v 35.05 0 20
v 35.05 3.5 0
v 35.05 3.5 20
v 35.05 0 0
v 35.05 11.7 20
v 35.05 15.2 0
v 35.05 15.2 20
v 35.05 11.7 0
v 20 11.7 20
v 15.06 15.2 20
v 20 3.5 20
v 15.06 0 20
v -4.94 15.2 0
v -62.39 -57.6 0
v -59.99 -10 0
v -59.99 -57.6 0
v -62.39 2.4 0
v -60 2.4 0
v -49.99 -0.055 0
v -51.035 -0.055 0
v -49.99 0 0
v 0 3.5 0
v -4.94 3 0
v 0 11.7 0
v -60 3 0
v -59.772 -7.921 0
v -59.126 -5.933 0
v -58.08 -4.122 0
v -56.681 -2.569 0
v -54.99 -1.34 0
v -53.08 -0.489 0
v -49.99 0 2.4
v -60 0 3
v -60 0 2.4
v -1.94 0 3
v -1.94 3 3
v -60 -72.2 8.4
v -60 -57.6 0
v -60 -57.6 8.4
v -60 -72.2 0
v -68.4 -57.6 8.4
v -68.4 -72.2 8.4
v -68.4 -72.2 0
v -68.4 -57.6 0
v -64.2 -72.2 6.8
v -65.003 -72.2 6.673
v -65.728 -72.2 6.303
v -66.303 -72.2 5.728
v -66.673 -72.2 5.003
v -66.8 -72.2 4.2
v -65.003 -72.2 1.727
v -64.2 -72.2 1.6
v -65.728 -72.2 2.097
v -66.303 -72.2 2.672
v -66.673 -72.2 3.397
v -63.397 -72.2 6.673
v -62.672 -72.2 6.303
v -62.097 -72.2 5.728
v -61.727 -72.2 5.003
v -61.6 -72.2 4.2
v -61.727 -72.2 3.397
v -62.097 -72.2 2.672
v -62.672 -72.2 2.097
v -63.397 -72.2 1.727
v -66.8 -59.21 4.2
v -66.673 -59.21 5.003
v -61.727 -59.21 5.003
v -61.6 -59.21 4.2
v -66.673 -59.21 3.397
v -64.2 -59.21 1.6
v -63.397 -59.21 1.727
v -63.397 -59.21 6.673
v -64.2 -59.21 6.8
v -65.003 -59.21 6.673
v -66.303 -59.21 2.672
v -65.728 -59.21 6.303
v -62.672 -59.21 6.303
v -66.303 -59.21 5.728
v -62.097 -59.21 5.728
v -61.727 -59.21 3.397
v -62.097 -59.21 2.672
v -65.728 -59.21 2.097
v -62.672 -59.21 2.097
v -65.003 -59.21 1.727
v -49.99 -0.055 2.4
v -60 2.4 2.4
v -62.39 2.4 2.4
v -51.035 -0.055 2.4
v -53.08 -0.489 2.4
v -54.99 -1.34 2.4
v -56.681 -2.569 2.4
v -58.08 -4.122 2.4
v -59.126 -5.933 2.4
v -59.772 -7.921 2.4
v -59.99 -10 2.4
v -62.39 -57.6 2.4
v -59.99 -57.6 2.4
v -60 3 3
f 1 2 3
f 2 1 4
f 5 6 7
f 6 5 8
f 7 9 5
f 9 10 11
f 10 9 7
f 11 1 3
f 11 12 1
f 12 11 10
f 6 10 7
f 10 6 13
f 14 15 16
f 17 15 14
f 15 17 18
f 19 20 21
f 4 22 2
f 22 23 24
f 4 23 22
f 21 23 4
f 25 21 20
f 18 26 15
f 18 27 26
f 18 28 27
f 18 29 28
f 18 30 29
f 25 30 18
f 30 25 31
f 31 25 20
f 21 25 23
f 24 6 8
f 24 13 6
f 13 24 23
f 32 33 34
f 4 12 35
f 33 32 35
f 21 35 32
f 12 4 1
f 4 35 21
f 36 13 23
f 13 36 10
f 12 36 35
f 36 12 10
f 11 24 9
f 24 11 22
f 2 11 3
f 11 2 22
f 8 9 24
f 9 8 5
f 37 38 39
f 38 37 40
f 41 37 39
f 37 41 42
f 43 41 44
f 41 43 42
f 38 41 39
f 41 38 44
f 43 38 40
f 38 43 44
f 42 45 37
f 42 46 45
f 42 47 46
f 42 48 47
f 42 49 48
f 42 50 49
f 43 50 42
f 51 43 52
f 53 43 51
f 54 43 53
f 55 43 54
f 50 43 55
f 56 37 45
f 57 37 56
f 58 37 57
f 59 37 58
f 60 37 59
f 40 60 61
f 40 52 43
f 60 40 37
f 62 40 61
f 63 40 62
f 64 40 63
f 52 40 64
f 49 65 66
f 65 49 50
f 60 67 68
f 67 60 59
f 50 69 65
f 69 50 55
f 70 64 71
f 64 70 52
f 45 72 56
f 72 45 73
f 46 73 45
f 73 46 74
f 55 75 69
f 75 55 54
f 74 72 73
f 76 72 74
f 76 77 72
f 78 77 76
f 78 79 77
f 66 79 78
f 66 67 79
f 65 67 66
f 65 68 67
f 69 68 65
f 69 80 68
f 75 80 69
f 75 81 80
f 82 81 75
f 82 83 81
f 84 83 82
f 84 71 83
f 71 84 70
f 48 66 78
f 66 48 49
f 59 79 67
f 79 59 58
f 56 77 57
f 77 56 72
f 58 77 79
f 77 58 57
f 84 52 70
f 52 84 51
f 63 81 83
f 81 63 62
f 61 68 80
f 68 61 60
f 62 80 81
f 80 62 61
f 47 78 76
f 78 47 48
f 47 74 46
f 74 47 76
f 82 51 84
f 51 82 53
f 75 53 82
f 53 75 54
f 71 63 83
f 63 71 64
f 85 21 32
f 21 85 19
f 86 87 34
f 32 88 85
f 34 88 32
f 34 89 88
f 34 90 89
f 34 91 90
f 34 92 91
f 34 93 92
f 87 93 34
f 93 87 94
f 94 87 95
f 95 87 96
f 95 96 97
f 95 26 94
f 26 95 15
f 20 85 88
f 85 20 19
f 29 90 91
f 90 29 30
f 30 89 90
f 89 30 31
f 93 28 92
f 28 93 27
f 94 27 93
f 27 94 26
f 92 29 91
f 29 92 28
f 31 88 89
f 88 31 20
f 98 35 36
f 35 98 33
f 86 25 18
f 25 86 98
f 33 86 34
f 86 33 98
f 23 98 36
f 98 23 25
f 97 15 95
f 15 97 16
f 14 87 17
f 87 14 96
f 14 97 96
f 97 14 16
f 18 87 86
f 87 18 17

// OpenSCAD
// -*- mode: SCAD ; c-file-style: "ellemtel" ; coding: utf-8 -*-
//
// Yet another Pi Camera holder
//
// © 2017 Roland Sieker <ospalh@gmail.com>
// Licence: CC-BY-SA 4.0


// **********************************************************
// Change these to taste. Lengths are in mm.
t_b = 8.2;  // Bed thickness. I want to attach it to an 8 mm Acrylic bed carrier
cam_angle = 45;  // °
l_c = 30;  // Clamp length. How big the clamping bit will be
w_c = 20;  // Clamp width
t_c = 3.5;  // Thickness of the clamp arm
w_ah = 3;  // Thickness of the cam arm
w_av = 2.4;  // Thickness of the cam arm
x_a = 60;  // length of the arm
z_a = 60;  // height of the arm
r_af = 10;  // Radius of the fillet on the arm
r_cf = 6;  // Radius of the fillet on the clamp
r_h = 2.6;  // camera holder hole radius
h_w = 1.6;  // walls around that
h_d = 13;  // camera holder hole depth

// **********************************************************
ms = 0.01;

l_ce = w_c/tan(cam_angle);

mirror()
{
   translate([-l_ce-w_c+t_c/cos(cam_angle),0,0])
   {

      clamp();
   }
   arm();
}

module clamp()
{
   h_c = t_b + 2 * t_c;
   difference()
   {
      cube([w_c+l_ce, h_c, w_c]);
      translate([w_c+l_ce, -ms,-ms])
      {
         rotate([0, -cam_angle,0])
         {
            cube([w_c, h_c+2*ms, 3*w_c]);
         }
      }
      translate([w_c+l_ce-t_c/cos(cam_angle), 0, 0])
      {
         rotate([0, -cam_angle,0])
         {
            translate([-2*w_c, t_c, -0*w_c])
            {
               cube([2*w_c, t_b, 2*w_c]);
            }
         }
      }
   }
}

module arm()
{
   cube([x_a,w_ah,w_ah]);
   translate([x_a-ms, -z_a+w_av, 0])
   {
      cube([w_av,z_a,w_av]);
   }
   translate([x_a, -z_a-h_d+w_av-h_w, 0])
   {
      difference()
      {
         cube([2*r_h+2*h_w, h_d+h_w, 2*r_h+2*h_w]);
         translate([r_h+h_w, h_d-ms, r_h+h_w])
         {
            rotate([90,0,0])
            {
               cylinder(r=r_h,h=h_d, $fn=20);
            }
         }
      }
   }
   // on arm fillet
   translate([x_a-ms-r_af, -r_af, 0])
   {
      difference()
      {
         cube([r_af, r_af,w_av]);
         translate([0,0,-ms])
         {
            cylinder(r=r_af, h=w_ah+2*ms);
         }
      }
   }
}
